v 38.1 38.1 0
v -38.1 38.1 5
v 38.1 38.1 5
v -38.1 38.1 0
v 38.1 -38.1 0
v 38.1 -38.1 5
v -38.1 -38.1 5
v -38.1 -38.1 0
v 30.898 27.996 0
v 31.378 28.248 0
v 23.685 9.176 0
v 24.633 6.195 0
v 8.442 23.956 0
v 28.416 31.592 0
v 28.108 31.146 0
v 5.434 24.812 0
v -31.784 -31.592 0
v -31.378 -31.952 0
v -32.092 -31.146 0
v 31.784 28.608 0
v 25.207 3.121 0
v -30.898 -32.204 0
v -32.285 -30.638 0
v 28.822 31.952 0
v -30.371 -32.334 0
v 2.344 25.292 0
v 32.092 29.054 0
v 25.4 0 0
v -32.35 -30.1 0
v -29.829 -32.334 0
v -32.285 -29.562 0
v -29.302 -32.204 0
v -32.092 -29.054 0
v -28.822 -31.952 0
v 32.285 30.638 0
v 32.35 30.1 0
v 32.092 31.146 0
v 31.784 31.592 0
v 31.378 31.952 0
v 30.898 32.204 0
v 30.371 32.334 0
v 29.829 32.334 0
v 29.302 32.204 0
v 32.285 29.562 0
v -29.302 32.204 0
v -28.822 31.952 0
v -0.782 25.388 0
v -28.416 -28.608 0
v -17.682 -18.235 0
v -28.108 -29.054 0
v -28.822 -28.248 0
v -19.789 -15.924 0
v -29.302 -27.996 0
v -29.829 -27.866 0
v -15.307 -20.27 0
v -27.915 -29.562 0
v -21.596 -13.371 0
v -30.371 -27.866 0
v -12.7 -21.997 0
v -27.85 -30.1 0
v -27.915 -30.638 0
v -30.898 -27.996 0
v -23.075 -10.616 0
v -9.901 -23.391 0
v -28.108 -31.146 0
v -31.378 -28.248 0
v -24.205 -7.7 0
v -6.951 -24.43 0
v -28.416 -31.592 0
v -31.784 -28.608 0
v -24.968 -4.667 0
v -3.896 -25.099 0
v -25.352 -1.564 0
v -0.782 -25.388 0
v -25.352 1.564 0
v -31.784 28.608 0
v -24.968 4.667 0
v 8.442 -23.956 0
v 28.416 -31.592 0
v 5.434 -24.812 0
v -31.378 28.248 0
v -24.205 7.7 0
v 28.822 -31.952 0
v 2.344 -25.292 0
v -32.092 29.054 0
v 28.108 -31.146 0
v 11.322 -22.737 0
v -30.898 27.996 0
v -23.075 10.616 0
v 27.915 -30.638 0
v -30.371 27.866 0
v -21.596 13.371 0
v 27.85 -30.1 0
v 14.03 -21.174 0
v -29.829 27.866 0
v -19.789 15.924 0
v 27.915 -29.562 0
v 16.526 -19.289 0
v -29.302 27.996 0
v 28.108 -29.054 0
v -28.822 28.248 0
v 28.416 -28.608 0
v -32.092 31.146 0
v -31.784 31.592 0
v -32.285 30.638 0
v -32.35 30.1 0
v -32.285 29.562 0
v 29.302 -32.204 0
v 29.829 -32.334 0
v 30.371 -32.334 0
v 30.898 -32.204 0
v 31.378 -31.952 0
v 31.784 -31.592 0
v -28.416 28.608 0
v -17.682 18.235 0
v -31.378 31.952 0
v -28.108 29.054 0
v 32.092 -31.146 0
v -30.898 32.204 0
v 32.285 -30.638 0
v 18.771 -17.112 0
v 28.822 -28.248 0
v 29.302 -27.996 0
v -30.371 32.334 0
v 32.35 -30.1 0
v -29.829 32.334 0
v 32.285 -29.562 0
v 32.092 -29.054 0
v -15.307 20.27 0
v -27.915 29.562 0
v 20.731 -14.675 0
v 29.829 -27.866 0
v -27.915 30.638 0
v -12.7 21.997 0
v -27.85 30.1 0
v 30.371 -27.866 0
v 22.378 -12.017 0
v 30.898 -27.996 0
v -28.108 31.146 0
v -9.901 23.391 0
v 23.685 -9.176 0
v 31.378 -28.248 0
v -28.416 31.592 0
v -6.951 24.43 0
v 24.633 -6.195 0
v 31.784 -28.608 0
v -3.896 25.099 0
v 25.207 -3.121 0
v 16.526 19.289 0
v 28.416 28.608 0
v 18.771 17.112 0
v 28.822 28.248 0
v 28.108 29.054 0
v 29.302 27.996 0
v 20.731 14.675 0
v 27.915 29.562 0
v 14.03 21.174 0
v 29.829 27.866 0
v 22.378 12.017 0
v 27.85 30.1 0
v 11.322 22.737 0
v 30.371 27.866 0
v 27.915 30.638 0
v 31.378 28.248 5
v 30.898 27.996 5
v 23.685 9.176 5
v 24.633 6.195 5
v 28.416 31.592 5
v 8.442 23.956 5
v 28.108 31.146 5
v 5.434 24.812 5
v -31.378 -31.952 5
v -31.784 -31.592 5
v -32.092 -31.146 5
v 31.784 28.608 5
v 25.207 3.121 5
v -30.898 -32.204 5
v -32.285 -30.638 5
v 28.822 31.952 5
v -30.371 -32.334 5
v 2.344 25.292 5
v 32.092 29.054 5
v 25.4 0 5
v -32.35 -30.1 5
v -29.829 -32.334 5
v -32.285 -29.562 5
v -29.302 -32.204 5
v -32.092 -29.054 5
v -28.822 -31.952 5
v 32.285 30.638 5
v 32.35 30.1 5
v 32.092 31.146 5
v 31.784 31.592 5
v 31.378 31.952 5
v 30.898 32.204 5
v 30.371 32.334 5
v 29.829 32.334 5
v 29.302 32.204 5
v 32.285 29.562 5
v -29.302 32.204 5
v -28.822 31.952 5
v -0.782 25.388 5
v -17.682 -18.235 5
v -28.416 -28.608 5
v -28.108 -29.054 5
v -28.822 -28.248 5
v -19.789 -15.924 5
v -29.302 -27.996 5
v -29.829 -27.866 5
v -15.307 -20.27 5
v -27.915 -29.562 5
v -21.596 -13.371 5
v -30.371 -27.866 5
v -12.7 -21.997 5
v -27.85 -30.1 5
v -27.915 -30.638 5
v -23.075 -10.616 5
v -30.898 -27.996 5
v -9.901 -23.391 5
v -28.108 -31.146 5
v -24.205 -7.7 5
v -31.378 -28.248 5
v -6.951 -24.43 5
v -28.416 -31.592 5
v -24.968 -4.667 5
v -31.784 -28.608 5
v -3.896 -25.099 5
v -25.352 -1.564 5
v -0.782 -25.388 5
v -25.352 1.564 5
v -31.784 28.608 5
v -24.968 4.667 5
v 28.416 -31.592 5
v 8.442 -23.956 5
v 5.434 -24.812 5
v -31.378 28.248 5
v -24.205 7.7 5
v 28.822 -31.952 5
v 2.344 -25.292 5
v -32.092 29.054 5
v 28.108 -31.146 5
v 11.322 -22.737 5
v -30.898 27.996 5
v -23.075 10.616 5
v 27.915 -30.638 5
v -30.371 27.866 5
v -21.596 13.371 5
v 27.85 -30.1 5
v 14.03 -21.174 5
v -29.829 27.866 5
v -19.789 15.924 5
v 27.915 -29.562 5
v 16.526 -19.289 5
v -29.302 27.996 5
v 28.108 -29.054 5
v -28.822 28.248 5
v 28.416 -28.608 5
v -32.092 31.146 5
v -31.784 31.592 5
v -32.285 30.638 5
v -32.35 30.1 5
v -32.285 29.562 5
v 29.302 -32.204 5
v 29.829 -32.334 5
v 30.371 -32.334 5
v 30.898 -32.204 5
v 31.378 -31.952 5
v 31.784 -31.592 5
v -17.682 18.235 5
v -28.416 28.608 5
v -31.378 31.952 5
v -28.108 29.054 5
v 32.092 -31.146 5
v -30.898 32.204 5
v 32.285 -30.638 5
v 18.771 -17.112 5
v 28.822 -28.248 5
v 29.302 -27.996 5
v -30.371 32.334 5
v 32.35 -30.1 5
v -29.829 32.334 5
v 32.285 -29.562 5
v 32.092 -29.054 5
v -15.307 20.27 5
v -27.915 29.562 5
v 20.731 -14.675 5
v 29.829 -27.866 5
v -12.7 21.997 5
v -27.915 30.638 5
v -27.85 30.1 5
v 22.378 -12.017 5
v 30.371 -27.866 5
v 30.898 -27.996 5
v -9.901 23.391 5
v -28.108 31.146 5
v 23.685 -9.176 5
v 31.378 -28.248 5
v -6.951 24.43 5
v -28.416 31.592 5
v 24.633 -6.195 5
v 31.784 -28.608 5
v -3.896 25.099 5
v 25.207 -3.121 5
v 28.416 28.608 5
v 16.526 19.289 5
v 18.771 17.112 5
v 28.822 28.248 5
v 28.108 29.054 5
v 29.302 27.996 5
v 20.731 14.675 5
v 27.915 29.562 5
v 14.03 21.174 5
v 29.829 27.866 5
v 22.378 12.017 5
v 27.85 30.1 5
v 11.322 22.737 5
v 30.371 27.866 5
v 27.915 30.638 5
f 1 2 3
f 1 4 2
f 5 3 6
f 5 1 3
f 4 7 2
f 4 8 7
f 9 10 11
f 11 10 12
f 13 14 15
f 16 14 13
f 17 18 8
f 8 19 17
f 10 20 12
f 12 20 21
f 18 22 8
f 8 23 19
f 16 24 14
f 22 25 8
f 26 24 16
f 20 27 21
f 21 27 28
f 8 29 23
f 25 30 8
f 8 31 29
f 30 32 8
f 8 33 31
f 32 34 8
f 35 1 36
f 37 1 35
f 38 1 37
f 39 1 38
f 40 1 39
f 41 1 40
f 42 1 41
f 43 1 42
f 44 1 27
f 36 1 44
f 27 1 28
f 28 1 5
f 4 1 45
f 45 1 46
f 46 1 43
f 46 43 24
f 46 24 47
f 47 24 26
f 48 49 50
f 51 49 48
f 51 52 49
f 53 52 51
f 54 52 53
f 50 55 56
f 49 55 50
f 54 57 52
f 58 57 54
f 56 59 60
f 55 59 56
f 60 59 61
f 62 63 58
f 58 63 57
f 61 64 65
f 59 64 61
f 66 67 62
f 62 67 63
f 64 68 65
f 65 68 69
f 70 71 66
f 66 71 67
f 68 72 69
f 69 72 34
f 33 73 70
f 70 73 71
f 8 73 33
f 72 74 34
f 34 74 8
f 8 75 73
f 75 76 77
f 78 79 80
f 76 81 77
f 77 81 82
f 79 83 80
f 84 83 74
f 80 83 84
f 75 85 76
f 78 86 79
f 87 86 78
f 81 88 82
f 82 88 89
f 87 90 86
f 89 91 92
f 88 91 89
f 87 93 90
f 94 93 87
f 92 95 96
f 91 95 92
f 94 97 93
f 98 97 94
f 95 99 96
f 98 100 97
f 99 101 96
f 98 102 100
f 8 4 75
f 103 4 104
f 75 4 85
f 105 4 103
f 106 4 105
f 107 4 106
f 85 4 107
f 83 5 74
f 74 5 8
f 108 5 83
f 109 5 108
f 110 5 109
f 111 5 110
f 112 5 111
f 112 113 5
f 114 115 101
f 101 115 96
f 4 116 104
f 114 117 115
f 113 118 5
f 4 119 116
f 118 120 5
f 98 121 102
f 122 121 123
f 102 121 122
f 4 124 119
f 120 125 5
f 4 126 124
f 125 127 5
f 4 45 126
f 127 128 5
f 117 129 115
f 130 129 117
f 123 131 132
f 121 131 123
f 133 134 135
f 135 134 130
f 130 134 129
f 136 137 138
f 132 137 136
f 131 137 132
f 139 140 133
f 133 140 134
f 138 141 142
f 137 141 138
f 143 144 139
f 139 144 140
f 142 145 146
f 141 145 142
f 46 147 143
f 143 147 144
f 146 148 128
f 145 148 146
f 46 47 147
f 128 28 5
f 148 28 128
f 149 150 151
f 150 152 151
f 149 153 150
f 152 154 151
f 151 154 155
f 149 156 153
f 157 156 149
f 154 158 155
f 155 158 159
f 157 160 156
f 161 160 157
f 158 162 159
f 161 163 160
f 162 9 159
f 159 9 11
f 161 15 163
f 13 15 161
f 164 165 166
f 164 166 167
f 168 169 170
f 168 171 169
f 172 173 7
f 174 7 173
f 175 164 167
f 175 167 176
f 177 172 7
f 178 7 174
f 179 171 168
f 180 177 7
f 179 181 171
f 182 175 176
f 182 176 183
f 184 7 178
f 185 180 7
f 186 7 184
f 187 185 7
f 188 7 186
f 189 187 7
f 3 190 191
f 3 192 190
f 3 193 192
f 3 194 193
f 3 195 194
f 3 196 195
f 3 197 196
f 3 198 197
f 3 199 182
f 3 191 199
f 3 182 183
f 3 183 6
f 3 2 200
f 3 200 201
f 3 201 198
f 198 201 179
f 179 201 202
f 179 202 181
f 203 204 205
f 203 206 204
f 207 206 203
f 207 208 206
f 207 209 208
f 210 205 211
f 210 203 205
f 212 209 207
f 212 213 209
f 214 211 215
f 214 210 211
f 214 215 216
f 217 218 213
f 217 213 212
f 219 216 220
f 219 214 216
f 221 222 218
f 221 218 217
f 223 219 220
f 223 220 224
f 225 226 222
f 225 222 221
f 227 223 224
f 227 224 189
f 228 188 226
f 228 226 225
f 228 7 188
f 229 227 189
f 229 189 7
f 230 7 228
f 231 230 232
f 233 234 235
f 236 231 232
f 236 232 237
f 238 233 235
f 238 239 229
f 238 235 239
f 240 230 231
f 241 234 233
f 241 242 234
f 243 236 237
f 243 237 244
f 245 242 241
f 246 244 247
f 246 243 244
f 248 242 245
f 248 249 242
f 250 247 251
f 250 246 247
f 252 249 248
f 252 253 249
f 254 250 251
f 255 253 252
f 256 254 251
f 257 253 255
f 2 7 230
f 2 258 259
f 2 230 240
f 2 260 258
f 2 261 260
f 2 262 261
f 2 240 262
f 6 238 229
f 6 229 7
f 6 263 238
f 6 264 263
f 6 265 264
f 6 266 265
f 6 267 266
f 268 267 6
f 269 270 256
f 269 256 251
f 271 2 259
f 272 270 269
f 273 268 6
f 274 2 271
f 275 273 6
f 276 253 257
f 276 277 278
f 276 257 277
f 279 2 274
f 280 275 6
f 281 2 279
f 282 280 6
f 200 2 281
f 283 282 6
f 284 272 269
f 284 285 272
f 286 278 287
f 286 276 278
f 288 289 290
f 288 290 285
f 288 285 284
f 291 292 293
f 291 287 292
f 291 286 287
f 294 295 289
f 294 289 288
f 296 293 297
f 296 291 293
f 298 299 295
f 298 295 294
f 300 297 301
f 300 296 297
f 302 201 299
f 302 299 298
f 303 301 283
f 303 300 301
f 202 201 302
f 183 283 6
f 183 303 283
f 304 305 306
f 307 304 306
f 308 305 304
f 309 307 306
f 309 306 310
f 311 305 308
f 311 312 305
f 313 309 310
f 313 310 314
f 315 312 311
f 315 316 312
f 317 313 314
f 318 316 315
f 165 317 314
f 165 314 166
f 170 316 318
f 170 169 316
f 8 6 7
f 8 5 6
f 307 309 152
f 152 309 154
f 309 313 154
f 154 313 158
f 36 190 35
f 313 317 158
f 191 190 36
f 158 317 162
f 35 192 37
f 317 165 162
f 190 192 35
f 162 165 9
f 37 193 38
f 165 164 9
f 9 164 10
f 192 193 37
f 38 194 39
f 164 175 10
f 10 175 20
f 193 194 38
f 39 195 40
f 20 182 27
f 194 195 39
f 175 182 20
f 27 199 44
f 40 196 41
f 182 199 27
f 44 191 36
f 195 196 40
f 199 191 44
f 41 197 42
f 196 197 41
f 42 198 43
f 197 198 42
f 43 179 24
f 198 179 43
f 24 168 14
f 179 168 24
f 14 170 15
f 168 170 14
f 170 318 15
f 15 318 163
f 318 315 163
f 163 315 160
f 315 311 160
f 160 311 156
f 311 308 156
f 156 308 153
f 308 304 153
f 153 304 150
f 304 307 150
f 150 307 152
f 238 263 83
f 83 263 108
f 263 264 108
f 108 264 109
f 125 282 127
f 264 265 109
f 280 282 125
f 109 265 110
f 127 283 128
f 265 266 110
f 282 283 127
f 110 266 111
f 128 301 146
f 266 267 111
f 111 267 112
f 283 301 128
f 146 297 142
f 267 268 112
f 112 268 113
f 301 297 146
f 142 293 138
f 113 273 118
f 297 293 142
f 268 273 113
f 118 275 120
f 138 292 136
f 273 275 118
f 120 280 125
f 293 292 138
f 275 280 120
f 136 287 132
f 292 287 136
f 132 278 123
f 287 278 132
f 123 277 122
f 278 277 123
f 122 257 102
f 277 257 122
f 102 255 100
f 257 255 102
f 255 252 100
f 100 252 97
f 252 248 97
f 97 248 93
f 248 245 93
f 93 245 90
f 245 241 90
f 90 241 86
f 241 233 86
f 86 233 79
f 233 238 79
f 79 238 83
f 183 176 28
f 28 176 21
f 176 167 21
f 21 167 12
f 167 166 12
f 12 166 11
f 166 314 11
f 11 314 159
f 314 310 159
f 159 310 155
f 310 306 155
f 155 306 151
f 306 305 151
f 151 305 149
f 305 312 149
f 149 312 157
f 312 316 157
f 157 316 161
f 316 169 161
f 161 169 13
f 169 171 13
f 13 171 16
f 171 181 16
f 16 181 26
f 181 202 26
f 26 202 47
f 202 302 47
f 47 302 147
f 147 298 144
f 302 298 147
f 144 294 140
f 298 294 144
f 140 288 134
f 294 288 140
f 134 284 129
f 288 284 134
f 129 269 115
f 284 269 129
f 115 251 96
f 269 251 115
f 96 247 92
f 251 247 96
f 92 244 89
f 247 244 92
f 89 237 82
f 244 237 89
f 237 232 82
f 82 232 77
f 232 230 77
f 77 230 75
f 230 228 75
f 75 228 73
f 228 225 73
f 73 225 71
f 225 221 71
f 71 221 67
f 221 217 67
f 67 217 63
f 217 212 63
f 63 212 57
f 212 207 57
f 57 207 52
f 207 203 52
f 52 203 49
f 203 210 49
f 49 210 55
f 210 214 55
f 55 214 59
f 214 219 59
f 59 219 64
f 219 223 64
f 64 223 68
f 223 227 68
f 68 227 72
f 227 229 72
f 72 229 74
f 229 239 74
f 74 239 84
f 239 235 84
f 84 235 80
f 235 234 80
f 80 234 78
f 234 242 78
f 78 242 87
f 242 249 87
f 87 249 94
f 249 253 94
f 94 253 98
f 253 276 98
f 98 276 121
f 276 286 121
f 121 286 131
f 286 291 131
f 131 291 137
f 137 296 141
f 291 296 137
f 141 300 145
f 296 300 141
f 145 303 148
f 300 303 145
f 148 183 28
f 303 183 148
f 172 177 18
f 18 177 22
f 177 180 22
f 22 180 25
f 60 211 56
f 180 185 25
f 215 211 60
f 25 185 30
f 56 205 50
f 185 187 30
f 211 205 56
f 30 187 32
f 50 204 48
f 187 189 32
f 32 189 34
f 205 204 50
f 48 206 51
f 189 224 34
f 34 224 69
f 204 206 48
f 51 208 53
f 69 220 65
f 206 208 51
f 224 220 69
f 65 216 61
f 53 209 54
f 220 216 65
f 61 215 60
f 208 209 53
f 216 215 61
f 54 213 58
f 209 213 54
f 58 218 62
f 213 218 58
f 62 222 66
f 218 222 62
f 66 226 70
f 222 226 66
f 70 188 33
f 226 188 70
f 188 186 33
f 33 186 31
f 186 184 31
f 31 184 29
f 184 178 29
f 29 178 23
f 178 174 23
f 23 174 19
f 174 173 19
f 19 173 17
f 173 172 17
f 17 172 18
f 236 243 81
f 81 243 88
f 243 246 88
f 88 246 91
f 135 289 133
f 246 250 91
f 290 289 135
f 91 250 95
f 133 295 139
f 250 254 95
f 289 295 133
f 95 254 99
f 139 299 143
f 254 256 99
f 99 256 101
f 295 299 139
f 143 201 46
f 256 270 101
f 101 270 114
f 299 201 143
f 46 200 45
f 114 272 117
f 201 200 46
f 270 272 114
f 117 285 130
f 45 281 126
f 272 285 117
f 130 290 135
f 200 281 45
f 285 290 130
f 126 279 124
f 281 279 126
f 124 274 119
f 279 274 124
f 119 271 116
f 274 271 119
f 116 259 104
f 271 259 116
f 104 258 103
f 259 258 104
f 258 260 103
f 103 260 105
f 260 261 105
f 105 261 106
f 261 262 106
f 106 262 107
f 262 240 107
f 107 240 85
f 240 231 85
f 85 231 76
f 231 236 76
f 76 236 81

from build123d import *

# Parameters (mm, degrees)
SKETCH_W        = 76.2
SKETCH_H        = 76.2
PAD_DEPTH       = 5
SKETCH001_R     = 25.4
POCKET_DEPTH    = 5.001
SKETCH002_R     = 2.25
POCKET001_DEPTH = 5.001


with BuildPart() as part:
    # Sketch → Pad (new body)
    with BuildSketch(Plane.XY):
        Rectangle(SKETCH_W, SKETCH_H)
    extrude(amount=PAD_DEPTH)

    # Sketch001 (on Face6 of Pad) → Pocket (cut, through all)
    with BuildSketch(Plane.XY.offset(5)):
        Circle(SKETCH001_R)
    extrude(amount=-POCKET_DEPTH, mode=Mode.SUBTRACT)

    # Sketch002 (on Face5 of Pocket) → Pocket001 (cut, through all)
    with BuildSketch(Plane.XY.offset(5)):
        with Locations((-30.1, -30.1)):
            Circle(SKETCH002_R)
        with Locations((30.1, -30.1)):
            Circle(SKETCH002_R)
        with Locations((30.1, 30.1)):
            Circle(SKETCH002_R)
        with Locations((-30.1, 30.1)):
            Circle(SKETCH002_R)
    extrude(amount=-POCKET001_DEPTH, mode=Mode.SUBTRACT)


solid = part.part
